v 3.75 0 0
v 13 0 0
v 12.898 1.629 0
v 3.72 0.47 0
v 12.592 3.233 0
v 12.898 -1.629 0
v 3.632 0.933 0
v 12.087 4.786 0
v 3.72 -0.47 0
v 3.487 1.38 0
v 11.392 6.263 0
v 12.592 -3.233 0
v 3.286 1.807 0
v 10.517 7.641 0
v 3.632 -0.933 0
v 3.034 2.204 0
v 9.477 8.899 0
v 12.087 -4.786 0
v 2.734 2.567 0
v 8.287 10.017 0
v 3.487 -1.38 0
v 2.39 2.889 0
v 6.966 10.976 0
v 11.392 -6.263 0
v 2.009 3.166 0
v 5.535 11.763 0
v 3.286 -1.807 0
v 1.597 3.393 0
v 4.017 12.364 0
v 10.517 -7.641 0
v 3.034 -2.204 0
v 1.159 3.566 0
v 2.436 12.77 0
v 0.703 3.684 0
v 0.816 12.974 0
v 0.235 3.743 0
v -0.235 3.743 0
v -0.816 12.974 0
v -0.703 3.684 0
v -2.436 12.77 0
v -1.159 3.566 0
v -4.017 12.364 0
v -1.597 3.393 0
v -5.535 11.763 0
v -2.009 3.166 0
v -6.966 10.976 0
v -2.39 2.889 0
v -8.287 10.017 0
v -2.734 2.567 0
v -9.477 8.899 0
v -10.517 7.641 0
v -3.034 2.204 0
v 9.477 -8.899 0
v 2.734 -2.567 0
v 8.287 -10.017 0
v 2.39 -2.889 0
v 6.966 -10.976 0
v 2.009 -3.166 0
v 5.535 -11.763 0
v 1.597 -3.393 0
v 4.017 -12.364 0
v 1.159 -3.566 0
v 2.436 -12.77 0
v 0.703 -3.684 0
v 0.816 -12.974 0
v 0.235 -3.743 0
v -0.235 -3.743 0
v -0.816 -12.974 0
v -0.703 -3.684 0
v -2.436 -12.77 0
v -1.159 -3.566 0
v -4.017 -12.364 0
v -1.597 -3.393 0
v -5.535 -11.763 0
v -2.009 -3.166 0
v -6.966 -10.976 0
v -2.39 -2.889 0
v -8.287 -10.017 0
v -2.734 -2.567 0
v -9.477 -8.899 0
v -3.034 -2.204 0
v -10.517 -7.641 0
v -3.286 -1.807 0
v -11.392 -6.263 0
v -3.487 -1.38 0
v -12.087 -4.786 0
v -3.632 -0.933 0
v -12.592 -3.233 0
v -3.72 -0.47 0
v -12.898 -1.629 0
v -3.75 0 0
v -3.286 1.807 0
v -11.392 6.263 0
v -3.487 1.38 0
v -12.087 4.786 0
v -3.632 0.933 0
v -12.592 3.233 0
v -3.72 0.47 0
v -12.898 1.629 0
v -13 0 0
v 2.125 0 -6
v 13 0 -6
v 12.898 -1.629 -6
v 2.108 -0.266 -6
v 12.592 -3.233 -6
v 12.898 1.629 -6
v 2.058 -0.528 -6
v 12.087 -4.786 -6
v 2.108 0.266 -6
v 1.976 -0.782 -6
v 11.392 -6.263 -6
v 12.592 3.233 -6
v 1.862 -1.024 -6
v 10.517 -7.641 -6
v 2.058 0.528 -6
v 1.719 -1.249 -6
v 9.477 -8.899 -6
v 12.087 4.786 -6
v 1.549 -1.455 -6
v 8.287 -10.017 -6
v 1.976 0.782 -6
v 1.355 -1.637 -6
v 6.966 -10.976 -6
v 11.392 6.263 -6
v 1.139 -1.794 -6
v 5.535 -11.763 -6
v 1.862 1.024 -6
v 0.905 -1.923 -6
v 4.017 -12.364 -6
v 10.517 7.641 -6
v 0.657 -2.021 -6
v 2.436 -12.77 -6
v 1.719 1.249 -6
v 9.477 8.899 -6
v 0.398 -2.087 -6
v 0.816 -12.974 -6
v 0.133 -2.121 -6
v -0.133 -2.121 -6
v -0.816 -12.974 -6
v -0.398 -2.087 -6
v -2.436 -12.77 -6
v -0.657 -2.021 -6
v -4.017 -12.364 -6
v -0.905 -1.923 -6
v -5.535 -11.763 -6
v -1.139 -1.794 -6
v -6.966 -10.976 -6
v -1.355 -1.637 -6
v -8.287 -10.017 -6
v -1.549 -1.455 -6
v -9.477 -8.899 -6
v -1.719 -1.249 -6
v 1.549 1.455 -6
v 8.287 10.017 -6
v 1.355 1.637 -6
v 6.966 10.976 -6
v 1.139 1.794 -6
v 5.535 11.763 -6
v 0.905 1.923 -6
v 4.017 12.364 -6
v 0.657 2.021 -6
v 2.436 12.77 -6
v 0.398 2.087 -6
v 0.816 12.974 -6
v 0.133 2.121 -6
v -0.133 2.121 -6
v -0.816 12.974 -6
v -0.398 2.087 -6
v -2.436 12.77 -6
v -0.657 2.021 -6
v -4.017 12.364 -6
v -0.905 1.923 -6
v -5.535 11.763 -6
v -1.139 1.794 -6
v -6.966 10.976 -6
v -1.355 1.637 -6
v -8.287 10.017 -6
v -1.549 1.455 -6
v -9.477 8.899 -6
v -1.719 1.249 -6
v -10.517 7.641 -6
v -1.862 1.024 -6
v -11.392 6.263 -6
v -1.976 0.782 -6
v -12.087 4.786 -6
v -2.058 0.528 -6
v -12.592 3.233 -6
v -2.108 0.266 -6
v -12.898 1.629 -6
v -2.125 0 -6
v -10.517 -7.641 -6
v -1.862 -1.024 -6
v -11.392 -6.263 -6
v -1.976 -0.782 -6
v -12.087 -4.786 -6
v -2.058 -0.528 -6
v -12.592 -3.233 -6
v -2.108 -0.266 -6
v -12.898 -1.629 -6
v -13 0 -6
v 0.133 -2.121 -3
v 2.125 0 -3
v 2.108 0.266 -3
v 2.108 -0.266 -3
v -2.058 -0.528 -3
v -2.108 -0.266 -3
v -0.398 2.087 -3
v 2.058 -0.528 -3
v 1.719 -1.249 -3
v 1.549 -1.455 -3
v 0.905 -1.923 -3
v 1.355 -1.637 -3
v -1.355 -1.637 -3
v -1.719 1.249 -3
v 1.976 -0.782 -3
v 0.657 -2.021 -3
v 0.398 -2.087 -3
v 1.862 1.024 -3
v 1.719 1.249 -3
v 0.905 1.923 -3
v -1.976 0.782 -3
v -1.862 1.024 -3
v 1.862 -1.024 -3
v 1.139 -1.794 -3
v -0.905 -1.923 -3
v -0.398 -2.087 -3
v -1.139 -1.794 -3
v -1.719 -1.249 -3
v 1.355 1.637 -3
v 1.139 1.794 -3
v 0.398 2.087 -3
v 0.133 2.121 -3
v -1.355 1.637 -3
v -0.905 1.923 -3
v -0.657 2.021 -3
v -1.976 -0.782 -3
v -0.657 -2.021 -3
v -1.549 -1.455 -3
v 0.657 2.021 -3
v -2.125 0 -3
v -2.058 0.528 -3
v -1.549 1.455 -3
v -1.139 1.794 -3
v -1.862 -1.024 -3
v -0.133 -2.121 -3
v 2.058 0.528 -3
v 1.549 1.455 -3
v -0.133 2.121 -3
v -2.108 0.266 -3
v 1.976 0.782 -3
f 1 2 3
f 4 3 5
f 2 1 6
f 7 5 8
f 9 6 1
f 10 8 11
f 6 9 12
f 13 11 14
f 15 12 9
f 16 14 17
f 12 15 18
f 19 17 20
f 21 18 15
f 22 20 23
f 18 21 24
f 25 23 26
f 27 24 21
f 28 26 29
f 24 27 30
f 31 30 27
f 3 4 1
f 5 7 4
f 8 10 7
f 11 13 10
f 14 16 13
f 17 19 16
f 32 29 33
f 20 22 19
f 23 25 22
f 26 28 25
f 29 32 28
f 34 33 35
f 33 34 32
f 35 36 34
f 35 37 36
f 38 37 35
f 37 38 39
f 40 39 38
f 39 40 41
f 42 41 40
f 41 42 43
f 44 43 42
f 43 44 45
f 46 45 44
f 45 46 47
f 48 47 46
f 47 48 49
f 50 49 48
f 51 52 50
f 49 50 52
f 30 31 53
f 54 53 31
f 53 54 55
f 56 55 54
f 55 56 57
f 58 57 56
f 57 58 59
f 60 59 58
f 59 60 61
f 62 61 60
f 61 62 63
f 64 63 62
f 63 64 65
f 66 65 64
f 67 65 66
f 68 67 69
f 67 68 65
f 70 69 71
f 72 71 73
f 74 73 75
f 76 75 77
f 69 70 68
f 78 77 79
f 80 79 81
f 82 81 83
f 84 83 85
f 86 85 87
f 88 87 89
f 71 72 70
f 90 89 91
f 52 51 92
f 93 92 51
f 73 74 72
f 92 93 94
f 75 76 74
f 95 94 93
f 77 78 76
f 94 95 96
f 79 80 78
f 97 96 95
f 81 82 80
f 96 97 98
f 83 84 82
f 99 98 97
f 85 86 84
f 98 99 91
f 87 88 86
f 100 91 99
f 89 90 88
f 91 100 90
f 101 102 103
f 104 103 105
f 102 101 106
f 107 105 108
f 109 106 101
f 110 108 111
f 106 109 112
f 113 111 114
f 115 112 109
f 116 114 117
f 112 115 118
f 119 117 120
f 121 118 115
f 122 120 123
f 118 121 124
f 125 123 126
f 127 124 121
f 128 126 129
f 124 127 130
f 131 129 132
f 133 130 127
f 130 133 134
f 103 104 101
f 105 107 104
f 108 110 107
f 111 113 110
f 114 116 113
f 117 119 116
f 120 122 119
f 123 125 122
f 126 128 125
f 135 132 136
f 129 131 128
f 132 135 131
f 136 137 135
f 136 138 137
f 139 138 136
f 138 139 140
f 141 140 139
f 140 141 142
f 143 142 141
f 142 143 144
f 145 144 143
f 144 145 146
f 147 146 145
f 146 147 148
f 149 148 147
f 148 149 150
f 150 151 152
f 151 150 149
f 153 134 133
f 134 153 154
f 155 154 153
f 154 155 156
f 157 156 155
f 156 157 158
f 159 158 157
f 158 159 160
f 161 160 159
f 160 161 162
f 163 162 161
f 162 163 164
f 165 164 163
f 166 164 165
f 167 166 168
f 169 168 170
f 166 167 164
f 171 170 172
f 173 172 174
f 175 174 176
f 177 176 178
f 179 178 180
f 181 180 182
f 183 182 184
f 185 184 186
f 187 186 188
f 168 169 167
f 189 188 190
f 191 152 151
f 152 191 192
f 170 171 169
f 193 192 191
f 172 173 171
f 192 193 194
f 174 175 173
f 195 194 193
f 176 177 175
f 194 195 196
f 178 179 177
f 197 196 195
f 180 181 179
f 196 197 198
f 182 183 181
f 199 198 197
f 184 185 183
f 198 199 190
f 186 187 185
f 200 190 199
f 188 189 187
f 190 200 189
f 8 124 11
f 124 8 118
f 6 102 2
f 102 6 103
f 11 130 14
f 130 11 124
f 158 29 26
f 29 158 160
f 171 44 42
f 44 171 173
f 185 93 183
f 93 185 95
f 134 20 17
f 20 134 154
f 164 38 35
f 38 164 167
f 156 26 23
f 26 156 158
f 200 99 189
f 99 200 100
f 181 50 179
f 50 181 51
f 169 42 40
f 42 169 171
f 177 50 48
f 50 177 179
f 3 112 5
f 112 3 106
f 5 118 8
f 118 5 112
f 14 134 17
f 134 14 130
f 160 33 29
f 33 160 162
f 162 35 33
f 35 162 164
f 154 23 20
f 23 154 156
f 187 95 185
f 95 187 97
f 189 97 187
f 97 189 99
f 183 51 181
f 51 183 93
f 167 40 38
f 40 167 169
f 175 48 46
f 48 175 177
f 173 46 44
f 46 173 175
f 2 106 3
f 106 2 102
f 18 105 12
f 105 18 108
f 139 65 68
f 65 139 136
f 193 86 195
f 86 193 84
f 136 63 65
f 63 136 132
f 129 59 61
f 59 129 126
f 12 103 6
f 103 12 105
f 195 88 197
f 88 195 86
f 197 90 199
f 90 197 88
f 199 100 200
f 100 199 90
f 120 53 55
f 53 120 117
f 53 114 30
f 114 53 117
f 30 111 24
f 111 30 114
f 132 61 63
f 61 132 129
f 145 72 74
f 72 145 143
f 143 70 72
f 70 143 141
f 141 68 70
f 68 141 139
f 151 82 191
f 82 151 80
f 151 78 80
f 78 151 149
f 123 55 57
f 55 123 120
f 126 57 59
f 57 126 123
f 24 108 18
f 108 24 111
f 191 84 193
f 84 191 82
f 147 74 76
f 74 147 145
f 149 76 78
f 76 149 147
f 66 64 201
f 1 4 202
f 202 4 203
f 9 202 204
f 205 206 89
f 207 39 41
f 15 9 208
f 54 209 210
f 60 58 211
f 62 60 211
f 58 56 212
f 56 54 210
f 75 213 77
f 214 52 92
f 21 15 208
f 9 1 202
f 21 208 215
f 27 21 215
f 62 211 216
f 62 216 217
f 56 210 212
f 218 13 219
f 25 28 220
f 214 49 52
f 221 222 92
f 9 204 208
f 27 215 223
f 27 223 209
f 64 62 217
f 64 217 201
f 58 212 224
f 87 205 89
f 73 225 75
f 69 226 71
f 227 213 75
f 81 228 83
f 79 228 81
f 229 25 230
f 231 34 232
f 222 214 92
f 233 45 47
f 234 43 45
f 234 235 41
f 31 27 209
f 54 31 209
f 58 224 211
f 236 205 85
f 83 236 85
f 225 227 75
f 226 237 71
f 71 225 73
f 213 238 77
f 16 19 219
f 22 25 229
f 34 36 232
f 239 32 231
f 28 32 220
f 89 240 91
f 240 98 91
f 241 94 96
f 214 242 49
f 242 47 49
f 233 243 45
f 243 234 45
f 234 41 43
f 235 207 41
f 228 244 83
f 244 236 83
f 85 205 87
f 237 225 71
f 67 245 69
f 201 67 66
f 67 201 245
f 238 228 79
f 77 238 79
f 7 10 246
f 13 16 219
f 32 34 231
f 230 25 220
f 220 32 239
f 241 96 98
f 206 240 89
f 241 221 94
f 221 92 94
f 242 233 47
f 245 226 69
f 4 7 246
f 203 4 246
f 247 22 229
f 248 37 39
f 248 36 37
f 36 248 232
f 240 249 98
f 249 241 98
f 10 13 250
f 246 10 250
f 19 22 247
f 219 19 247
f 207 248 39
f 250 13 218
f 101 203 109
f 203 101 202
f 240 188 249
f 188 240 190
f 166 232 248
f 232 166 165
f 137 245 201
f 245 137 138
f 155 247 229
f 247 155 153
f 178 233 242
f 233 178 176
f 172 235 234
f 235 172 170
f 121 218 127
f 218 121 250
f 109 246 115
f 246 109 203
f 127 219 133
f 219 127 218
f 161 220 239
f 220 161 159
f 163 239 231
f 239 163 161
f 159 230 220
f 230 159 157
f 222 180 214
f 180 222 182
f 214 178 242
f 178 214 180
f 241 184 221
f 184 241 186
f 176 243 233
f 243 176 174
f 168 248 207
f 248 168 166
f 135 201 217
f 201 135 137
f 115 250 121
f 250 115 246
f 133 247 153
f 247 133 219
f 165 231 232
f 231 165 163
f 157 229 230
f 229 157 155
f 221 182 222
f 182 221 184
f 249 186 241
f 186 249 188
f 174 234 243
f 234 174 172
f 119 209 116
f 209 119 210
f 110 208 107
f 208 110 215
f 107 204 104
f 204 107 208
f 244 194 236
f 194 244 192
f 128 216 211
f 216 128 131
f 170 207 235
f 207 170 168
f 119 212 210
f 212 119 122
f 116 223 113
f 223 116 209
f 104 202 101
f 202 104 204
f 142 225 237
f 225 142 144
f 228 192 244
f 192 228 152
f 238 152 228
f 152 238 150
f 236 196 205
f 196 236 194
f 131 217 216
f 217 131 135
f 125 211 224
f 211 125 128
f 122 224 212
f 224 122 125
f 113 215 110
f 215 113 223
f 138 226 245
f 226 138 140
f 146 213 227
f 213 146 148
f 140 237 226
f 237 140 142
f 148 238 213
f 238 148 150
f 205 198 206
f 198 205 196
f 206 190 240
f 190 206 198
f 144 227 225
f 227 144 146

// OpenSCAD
$fn = 50;


difference() {
	union() {
		translate(v = [0, 0, -6.0000000000]) {
			cylinder(h = 6, r = 7.0000000000);
		}
		translate(v = [0, 0, -6.0000000000]) {
			cylinder(h = 6, r = 13.0000000000);
		}
	}
	union() {
		translate(v = [0, 0, 0]) {
			rotate(a = [0, 0, 0]) {
				difference() {
					union() {
						#translate(v = [0, 0, -6.0000000000]) {
							cylinder(h = 6, r = 2.0000000000);
						}
						#translate(v = [0, 0, -3]) {
							cylinder(h = 3, r = 7.0000000000, r1 = 2.1250000000, r2 = 3.7500000000);
						}
						#translate(v = [0, 0, -6.0000000000]) {
							cylinder(h = 6, r = 2.1250000000);
						}
						#translate(v = [0, 0, -6.0000000000]) {
							cylinder(h = 6, r = 2.0000000000);
						}
					}
					union();
				}
			}
		}
	}
}
